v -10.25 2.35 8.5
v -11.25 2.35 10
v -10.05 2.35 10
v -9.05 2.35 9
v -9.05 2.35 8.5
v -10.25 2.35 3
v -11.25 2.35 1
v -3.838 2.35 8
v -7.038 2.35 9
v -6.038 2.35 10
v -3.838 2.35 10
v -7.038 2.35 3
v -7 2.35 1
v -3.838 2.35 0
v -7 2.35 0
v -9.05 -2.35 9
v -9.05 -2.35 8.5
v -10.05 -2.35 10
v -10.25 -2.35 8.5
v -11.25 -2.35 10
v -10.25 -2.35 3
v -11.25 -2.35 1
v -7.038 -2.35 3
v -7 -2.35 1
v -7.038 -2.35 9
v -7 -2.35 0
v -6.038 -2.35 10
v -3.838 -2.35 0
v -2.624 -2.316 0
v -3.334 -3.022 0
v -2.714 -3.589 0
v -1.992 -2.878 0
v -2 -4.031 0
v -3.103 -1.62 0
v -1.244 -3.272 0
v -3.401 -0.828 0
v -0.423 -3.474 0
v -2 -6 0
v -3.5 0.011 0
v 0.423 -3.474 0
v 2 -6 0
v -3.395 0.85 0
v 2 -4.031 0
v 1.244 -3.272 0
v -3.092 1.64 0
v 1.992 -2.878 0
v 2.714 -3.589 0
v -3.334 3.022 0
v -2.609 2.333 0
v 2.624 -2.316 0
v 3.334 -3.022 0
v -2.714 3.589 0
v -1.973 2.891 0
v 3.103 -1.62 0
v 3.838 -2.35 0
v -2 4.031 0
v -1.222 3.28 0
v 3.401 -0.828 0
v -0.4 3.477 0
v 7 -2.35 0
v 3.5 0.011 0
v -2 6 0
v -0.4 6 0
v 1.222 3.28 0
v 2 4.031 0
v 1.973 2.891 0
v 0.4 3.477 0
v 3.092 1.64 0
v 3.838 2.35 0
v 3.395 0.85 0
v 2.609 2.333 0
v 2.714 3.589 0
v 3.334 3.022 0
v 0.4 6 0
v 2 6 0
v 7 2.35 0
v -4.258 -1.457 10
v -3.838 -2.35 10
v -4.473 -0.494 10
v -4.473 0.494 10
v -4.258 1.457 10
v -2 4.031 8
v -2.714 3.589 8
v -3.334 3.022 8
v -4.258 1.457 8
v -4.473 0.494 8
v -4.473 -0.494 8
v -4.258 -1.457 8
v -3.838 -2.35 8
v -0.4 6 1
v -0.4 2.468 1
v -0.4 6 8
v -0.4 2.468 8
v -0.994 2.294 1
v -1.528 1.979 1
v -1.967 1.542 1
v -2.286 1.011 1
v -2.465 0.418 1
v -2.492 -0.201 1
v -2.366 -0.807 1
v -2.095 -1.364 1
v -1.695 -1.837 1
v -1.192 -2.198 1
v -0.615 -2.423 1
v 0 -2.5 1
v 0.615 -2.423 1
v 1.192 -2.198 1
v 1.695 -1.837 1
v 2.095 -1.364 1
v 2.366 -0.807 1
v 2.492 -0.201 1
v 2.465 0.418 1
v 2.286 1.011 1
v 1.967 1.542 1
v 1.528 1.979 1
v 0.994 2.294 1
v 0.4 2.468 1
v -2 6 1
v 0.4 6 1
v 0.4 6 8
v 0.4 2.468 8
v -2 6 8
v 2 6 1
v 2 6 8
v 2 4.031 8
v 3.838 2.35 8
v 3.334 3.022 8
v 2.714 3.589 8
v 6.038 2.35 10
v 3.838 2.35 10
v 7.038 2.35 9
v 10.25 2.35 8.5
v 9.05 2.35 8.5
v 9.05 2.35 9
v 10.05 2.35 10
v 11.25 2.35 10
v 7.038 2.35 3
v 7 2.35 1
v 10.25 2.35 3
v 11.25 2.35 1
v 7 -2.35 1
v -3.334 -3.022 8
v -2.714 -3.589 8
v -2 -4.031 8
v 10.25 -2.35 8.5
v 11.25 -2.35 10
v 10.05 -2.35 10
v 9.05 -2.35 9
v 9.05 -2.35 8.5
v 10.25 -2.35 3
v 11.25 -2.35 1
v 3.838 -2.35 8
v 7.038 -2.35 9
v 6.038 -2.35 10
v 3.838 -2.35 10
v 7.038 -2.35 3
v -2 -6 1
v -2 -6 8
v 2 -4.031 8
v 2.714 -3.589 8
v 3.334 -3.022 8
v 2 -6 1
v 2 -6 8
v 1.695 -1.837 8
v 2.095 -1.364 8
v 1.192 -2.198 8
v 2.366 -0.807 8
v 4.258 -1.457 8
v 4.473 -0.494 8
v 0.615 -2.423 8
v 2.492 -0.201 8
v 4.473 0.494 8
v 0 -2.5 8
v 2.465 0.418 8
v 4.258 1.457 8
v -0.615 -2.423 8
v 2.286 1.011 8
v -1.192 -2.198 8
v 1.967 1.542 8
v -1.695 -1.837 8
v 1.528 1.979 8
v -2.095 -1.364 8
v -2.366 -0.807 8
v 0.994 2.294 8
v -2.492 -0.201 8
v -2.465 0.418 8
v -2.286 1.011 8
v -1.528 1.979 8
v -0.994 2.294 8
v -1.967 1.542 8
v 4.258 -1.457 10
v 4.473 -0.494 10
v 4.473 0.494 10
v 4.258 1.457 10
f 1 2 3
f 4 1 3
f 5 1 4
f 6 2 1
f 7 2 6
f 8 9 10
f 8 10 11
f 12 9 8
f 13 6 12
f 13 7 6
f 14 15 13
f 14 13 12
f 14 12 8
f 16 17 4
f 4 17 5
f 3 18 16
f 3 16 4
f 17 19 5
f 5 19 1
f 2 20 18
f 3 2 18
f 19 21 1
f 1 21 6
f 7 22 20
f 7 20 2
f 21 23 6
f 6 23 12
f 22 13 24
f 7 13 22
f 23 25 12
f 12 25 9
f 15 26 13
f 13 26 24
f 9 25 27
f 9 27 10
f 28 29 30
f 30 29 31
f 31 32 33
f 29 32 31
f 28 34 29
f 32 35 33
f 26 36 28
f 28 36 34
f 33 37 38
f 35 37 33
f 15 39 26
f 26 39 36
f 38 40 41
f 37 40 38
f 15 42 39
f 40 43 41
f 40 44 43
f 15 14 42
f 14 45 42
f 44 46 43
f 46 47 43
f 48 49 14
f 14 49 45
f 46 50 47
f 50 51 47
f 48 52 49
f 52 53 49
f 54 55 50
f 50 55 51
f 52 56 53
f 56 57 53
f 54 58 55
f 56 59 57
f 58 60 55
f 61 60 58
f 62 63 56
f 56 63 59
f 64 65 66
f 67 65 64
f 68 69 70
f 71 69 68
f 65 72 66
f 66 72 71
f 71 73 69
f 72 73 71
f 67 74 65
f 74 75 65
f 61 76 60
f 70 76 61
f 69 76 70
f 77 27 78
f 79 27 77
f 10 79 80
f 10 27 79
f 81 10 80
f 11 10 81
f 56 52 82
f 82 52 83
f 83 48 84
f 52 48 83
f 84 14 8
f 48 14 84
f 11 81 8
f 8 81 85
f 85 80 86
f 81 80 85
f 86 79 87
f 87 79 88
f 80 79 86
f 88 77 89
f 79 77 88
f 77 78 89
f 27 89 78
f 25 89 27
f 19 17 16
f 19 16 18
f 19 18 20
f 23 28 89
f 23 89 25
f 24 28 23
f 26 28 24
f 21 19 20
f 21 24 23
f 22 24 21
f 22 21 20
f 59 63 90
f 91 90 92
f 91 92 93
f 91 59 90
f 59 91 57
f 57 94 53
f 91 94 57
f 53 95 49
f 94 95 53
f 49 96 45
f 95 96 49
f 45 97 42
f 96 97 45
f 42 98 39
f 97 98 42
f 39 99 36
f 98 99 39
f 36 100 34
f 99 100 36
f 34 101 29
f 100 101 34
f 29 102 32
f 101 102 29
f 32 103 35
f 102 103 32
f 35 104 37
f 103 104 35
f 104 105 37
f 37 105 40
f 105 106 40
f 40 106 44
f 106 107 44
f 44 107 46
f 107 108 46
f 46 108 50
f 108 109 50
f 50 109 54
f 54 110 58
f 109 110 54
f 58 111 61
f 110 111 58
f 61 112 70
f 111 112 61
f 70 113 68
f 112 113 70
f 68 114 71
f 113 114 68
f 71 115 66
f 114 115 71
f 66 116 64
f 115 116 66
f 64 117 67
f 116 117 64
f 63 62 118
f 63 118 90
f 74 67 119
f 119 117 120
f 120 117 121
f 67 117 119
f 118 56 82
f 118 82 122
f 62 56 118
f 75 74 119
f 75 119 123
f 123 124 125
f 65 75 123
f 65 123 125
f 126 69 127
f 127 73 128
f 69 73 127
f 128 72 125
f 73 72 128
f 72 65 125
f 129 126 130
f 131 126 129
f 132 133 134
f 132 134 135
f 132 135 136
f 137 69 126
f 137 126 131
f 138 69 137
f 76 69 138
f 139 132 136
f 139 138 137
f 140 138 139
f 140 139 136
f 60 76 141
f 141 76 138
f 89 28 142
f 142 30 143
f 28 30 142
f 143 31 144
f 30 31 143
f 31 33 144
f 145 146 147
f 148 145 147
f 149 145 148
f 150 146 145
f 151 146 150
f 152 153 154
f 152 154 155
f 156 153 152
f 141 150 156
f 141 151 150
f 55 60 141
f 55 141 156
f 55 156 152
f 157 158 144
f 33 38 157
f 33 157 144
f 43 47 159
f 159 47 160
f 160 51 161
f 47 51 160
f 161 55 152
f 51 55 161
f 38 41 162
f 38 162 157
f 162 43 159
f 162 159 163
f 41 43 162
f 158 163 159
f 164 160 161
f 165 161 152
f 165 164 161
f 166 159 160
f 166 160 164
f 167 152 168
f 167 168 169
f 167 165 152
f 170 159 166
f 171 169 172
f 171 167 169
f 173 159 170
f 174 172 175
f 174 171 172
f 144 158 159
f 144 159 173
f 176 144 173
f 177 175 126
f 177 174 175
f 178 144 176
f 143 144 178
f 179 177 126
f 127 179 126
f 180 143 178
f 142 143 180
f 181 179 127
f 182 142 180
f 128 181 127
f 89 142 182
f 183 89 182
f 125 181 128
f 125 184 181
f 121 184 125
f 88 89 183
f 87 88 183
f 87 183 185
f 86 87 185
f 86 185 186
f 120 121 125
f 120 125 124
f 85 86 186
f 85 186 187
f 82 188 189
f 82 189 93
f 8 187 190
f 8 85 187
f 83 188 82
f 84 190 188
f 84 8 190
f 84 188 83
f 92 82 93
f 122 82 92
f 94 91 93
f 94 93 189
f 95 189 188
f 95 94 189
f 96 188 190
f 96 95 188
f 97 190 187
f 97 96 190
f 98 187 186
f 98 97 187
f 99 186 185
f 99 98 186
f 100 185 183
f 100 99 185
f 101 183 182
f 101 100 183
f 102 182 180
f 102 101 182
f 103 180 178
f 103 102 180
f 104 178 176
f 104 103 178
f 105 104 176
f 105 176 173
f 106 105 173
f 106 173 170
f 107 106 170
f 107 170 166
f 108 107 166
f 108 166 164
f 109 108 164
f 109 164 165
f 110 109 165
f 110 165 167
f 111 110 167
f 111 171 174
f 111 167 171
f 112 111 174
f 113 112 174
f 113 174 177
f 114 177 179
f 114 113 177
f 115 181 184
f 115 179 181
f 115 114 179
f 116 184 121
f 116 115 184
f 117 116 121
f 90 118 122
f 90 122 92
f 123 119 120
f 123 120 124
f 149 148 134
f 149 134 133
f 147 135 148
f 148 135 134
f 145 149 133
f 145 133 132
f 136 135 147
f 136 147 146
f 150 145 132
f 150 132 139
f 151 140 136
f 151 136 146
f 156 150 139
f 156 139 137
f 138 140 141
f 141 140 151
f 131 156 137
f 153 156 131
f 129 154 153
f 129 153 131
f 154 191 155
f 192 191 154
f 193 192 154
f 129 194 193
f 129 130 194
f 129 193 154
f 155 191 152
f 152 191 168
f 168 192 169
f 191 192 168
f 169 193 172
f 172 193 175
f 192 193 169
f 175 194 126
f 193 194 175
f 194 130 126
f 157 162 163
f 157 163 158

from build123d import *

# Parameters (mm, degrees)
PAD_DEPTH       = 10
SKETCH001_W     = 28.454584
SKETCH001_H     = 18.079305
SKETCH001_W_2   = 14
SKETCH001_H_2   = 12
POCKET_DEPTH    = 1
POCKET001_DEPTH = 2
POCKET002_DEPTH = 5
CHAMFER_SIZE    = 1
CHAMFER001_SIZE = 1
CHAMFER002_SIZE = 1


with BuildPart() as part:
    # Sketch → Pad (new body)
    with BuildSketch(Plane.XY):
        with BuildLine():
            Line((-11.25, 2.35), (-3.8376425055, 2.35))
            ThreePointArc((-2, 4.0311288741), (-3.0374440042, 3.3202310043), (-3.8376425055, 2.35))
            Line((-2, 4.0311288741), (-2, 6))
            Line((-2, 6), (-0.4, 6))
            Line((-0.4, 6), (-0.4, 2.4677925359))
            ThreePointArc((-0.4, 2.4677925359), (0, -2.5), (0.4, 2.4677925359))
            Line((0.4, 6), (0.4, 2.4677925359))
            Line((0.4, 6), (2, 6))
            Line((2, 6), (2, 4.0311288741))
            ThreePointArc((3.8376425055, 2.35), (3.0374440042, 3.3202310043), (2, 4.0311288741))
            Line((3.8376425055, 2.35), (11.25, 2.35))
            Line((11.25, 2.35), (11.25, -2.35))
            Line((11.25, -2.35), (3.8376425055, -2.35))
            ThreePointArc((2, -4.0311288741), (3.0374440042, -3.3202310043), (3.8376425055, -2.35))
            Line((2, -4.0311288741), (2, -6))
            Line((2, -6), (-2, -6))
            Line((-2, -6), (-2, -4.0311288741))
            ThreePointArc((-3.8376425055, -2.35), (-3.0374440042, -3.3202310043), (-2, -4.0311288741))
            Line((-3.8376425055, -2.35), (-11.25, -2.35))
            Line((-11.25, -2.35), (-11.25, 2.35))
        make_face()
    extrude(amount=PAD_DEPTH)

    # Sketch001 (on Face21 of Pad) → Pocket (cut)
    with BuildSketch(Plane(origin=(0, 0, 0), x_dir=(1, 0, 0), z_dir=(0, 0, -1))):
        with Locations((-1.003043, -0.4011775)):
            Rectangle(SKETCH001_W, SKETCH001_H)
        Rectangle(SKETCH001_W_2, SKETCH001_H_2, mode=Mode.SUBTRACT)
    extrude(amount=-POCKET_DEPTH, mode=Mode.SUBTRACT)

    # Sketch002 (on Face6 of Pocket) → Pocket001 (cut)
    with BuildSketch(Plane.XY.offset(10)):
        with BuildLine():
            ThreePointArc((-2, 4.0311288741), (-4.5, 0), (-2, -4.0311288741))
            Line((-2, -4.0311288741), (-2, -6))
            Line((-2, -6), (2, -6))
            Line((2, -6), (2, -4.0311288741))
            ThreePointArc((2, -4.0311288741), (4.5, 0), (2, 4.0311288741))
            Line((2, 6), (2, 4.0311288741))
            Line((-2, 6), (2, 6))
            Line((-2, 4.0311288741), (-2, 6))
        make_face()
    extrude(amount=-POCKET001_DEPTH, mode=Mode.SUBTRACT)

    # Sketch003 (on Face1 of Pocket001) → Pocket002 (cut)
    with BuildSketch(Plane.XZ.offset(2.35)):
        Polygon((-9.05, 10), (-9.05, 8.5), (-10.25, 8.5), (-10.25, 3), (-7.0376425055, 3), (-7.0376425055, 10), align=None)
        Polygon((9.05, 10), (9.05, 8.5), (10.25, 8.5), (10.25, 3), (7.0376425055, 3), (7.0376425055, 10), align=None)
    extrude(amount=-POCKET002_DEPTH, mode=Mode.SUBTRACT)

    # Chamfer
    chamfer_edges = [part.edges().sort_by_distance(p)[0] for p in [
        (0, -2.5, 0),
    ]]
    chamfer(chamfer_edges, length=CHAMFER_SIZE)

    # Chamfer001
    chamfer001_edges = [part.edges().sort_by_distance(p)[0] for p in [
        (-7.037643, 0, 10),
        (7.037643, 0, 10),
    ]]
    chamfer(chamfer001_edges, length=CHAMFER001_SIZE)

    # Chamfer002
    chamfer002_edges = [part.edges().sort_by_distance(p)[0] for p in [
        (-9.05, 0, 10),
        (9.05, 0, 10),
    ]]
    chamfer(chamfer002_edges, length=CHAMFER002_SIZE)


solid = part.part
